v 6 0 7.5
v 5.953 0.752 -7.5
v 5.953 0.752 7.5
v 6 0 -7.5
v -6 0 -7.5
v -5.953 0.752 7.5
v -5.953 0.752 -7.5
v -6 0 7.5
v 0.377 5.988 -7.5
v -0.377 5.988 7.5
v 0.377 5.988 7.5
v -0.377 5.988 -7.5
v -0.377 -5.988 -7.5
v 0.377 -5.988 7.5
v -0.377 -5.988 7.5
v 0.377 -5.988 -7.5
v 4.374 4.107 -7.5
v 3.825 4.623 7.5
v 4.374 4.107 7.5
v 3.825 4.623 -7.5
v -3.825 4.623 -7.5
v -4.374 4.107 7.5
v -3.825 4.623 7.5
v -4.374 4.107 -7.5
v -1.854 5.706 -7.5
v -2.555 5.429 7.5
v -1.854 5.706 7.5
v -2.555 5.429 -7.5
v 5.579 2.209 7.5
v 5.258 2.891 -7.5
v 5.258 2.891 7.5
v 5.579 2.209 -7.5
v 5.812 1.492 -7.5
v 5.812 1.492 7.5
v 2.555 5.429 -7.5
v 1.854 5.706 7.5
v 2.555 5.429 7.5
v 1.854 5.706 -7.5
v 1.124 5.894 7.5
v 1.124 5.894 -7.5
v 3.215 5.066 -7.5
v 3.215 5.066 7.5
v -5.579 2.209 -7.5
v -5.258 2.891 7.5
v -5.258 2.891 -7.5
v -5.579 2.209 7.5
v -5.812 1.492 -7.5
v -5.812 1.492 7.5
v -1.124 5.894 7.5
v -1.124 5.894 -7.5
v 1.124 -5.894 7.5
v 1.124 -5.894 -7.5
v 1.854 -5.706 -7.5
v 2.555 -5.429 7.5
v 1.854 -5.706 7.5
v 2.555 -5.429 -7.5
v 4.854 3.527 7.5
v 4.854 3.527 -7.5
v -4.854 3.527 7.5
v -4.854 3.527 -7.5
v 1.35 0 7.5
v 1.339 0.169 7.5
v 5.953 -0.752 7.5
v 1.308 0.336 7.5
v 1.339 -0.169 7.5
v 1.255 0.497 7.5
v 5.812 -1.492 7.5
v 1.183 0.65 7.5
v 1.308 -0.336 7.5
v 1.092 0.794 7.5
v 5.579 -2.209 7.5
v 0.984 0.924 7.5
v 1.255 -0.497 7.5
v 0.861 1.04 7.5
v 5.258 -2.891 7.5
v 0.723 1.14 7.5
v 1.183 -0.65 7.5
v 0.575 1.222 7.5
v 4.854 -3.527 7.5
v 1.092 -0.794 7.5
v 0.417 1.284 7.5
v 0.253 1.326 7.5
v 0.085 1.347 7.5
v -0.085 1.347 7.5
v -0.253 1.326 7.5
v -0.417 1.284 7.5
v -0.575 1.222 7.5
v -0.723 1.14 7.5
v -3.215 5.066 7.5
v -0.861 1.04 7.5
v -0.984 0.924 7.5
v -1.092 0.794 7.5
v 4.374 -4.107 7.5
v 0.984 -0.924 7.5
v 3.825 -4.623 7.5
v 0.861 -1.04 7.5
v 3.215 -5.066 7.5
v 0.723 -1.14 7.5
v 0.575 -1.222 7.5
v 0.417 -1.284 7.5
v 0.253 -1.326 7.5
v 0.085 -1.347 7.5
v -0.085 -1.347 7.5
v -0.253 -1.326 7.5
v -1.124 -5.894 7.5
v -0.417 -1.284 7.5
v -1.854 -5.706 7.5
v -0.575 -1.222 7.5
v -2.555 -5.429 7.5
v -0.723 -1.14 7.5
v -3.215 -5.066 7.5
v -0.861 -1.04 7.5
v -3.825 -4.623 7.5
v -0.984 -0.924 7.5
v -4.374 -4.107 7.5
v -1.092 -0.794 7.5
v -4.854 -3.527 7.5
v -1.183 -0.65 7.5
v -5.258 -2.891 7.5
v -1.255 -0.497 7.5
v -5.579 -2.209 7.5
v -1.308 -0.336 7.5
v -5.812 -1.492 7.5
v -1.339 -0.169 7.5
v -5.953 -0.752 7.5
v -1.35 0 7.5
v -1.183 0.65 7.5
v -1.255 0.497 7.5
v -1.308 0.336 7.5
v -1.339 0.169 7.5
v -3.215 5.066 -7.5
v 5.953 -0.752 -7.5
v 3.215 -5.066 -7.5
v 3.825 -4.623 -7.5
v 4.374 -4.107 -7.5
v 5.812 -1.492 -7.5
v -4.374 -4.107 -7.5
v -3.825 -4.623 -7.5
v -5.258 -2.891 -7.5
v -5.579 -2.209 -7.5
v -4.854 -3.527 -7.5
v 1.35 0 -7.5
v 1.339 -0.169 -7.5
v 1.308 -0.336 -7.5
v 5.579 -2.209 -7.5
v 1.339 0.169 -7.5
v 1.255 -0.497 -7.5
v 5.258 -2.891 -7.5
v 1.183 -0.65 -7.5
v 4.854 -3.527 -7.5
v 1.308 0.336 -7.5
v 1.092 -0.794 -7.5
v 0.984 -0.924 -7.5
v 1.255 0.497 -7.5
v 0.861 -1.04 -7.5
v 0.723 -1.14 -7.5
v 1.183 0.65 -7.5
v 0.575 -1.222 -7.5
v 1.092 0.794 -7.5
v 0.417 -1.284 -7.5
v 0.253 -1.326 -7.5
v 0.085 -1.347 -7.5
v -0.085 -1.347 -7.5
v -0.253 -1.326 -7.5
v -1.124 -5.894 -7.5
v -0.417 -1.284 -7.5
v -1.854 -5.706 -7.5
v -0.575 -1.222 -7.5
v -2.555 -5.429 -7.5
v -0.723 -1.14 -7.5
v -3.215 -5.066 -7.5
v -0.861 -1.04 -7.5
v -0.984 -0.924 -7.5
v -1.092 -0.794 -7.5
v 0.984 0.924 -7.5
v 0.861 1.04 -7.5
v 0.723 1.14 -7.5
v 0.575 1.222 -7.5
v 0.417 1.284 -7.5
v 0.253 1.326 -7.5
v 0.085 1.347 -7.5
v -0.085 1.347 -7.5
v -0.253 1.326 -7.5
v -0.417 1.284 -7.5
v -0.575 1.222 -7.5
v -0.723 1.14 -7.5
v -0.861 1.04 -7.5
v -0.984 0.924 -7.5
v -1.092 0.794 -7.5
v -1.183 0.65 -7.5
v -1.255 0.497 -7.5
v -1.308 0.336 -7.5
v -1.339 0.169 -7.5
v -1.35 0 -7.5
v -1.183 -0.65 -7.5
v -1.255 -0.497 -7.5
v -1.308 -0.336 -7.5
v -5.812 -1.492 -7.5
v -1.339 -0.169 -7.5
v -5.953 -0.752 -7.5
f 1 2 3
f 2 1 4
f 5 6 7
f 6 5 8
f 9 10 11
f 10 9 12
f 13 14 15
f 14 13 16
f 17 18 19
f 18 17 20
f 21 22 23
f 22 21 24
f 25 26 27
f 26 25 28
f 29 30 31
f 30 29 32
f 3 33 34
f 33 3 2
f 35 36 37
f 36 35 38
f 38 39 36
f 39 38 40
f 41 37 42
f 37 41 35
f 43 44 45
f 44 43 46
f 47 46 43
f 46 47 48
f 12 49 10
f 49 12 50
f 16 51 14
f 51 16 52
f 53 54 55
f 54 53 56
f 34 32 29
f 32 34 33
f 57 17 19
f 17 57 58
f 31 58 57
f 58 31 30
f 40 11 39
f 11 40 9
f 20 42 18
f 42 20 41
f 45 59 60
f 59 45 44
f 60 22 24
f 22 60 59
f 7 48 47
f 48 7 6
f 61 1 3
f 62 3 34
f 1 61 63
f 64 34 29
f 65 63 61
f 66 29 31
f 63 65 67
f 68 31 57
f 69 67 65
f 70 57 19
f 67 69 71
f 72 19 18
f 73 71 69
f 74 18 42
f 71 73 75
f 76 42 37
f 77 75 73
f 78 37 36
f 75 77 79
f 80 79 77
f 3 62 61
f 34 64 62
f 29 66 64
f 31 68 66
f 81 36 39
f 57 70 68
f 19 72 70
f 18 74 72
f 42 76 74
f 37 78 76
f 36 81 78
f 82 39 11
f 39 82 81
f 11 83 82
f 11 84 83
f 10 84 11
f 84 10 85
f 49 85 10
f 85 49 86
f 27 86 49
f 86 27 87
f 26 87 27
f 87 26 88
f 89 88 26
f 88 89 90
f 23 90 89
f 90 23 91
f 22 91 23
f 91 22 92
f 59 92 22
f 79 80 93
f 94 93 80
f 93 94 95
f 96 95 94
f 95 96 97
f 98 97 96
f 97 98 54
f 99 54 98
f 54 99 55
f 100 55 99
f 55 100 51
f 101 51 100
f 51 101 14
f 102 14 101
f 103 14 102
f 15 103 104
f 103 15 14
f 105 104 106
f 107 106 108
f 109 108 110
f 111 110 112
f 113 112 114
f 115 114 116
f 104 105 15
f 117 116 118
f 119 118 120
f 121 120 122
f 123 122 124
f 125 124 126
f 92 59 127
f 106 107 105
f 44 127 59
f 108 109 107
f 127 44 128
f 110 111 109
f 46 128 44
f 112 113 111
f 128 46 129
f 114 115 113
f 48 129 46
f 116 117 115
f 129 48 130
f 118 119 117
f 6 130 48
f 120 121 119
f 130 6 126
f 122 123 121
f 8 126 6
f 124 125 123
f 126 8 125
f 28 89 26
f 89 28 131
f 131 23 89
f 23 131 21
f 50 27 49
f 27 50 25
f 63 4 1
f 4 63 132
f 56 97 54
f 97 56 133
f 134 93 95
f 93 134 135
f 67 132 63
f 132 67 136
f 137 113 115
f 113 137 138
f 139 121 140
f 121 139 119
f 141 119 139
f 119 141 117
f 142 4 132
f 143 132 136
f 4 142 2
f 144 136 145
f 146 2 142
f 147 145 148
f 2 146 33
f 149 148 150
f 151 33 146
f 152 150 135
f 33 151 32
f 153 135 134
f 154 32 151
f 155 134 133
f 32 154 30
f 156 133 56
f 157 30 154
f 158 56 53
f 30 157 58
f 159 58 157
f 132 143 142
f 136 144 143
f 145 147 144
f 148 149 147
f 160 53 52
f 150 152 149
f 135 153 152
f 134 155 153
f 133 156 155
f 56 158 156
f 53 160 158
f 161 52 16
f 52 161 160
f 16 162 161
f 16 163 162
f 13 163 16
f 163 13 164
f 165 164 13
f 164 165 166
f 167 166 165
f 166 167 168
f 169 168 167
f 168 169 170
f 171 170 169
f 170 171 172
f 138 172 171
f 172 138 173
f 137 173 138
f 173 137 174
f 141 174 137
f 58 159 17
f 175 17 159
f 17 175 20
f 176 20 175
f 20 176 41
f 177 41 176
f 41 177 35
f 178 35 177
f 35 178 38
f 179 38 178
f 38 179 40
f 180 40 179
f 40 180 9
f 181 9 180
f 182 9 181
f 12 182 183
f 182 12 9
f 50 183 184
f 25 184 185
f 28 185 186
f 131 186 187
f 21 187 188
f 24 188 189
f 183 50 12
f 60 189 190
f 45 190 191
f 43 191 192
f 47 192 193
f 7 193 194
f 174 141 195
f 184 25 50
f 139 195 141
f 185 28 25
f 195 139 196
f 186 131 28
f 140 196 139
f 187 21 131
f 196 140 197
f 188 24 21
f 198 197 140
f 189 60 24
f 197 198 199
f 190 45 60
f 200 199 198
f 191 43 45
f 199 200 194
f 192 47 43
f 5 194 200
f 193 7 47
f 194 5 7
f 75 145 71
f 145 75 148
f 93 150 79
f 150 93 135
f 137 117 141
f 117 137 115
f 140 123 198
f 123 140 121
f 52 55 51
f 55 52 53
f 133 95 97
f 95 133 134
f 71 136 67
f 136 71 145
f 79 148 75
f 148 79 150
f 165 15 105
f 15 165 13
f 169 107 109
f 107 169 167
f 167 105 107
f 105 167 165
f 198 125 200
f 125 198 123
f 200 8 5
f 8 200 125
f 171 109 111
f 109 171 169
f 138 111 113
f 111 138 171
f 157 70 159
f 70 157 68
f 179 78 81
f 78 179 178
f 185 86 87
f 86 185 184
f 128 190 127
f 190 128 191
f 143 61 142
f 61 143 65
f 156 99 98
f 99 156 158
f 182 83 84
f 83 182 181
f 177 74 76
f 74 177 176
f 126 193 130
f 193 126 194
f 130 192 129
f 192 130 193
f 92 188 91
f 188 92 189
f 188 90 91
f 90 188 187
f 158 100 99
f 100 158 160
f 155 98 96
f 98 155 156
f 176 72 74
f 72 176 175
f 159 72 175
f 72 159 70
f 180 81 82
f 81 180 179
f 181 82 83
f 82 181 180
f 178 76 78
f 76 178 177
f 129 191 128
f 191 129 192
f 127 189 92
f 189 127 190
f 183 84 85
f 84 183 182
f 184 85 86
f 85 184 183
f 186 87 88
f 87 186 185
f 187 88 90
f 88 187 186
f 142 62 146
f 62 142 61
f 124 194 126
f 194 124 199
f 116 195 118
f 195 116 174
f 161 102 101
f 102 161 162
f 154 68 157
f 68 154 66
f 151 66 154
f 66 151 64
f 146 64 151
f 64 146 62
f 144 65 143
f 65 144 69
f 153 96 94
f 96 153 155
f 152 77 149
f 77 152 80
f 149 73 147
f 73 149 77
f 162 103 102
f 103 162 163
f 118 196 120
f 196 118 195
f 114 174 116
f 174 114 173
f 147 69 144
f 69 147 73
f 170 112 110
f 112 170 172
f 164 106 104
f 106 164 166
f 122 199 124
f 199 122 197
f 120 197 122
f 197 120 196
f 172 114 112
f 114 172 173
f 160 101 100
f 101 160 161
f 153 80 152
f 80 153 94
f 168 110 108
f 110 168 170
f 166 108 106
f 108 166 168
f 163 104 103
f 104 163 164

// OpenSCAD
$fn = 50;


difference() {
	union() {
		translate(v = [0, 0, -7.5000000000]) {
			cylinder(h = 15, r = 6.0000000000);
		}
	}
	union() {
		translate(v = [0, 0, -100.0000000000]) {
			cylinder(h = 200, r = 1.3500000000);
		}
	}
}
